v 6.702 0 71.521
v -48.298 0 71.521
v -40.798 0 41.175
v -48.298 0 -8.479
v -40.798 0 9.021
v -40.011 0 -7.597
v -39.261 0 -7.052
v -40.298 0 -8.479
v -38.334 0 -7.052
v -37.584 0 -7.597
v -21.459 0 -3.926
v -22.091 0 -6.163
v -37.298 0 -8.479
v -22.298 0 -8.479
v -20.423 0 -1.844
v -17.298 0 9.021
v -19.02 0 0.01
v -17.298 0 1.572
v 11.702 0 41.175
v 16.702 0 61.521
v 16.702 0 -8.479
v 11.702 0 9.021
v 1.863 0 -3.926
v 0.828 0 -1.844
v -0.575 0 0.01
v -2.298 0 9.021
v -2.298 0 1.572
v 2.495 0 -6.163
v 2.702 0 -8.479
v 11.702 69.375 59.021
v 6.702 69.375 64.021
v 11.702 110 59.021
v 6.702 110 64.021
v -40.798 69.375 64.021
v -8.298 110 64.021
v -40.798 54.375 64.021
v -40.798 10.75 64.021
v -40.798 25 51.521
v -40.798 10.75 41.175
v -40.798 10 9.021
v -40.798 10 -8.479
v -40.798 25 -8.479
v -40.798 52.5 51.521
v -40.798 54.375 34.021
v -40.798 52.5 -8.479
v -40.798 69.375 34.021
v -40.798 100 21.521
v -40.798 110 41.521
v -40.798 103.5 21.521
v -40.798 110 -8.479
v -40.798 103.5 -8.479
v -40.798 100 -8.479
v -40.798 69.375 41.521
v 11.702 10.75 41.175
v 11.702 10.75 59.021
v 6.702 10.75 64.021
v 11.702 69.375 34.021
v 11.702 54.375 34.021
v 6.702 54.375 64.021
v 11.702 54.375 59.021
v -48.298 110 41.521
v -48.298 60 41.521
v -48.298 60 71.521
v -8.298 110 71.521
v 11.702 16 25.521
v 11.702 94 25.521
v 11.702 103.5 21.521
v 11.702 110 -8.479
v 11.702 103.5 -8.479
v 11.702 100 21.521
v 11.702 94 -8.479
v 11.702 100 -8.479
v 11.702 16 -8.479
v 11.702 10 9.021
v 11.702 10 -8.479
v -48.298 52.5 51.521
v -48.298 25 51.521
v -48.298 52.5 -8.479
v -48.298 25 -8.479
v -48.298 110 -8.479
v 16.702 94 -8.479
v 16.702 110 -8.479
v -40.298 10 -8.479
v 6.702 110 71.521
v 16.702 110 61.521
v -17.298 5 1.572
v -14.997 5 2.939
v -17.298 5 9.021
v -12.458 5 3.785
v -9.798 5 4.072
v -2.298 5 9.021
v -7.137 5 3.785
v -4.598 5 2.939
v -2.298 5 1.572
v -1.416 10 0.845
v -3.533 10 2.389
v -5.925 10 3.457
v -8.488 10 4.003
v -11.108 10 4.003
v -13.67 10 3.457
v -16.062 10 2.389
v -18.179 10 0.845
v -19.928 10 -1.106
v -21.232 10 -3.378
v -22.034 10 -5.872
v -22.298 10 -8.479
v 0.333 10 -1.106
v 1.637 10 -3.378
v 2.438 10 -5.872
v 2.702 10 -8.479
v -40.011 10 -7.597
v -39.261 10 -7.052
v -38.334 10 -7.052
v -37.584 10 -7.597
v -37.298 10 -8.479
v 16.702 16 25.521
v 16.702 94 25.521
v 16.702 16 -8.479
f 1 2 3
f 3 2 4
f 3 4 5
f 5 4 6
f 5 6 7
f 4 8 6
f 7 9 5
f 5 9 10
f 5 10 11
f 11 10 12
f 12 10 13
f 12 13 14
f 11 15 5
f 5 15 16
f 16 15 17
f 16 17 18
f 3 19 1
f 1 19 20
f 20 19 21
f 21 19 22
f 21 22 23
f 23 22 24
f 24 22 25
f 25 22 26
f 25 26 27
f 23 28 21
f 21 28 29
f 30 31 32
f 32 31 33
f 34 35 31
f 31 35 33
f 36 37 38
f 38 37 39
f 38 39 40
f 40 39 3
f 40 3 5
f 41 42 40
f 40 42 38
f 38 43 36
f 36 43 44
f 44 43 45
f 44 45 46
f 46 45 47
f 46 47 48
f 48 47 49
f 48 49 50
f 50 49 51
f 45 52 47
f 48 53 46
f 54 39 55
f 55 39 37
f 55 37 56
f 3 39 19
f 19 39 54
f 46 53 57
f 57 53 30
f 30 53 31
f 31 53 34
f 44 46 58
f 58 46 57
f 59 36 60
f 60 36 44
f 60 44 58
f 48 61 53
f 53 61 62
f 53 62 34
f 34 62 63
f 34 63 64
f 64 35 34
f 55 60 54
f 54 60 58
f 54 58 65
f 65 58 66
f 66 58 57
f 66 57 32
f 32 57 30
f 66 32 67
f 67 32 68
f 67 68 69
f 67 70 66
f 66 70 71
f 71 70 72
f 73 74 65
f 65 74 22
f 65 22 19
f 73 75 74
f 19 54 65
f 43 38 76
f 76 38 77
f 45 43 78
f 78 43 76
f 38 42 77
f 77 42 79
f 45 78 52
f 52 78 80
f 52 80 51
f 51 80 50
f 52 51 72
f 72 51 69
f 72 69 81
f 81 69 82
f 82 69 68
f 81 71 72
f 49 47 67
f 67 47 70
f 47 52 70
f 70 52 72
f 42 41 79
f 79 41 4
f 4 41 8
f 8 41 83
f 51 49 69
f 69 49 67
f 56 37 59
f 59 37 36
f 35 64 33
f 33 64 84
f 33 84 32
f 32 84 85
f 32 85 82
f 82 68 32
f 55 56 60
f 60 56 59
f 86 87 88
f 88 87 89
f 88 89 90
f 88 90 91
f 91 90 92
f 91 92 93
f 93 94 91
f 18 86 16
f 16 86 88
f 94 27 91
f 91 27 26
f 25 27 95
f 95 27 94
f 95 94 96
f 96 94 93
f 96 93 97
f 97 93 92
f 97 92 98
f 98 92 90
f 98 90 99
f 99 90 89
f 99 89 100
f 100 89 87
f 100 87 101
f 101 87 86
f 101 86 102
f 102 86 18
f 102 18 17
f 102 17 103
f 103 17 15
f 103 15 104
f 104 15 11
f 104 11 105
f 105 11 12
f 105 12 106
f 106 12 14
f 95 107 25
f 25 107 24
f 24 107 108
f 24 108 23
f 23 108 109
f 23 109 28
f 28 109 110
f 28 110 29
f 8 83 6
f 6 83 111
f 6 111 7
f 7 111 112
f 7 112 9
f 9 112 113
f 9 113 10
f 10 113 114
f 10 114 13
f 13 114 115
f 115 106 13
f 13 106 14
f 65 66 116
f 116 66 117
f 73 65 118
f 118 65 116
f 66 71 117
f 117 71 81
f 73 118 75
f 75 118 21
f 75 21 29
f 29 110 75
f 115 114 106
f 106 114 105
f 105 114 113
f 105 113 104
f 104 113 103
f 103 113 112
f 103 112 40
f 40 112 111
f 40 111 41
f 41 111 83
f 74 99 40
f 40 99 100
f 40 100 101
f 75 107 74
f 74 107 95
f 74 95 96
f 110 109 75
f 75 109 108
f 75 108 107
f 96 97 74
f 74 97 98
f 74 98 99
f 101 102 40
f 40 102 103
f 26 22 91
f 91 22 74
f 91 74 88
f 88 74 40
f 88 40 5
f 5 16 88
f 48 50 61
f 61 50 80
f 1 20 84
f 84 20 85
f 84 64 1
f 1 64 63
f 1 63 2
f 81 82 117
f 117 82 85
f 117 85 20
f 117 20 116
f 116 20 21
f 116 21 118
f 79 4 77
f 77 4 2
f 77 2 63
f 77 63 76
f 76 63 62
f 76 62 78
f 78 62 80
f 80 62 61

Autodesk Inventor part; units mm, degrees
ref_plane "YZ Plane" through (0, 0, 0) normal (1, 0, 0) x (0, 1, 0)
ref_plane "XZ Plane" through (0, 0, 0) normal (0, 1, 0) x (-1, 0, 0)
ref_plane "XY Plane" through (0, 0, 0) normal (0, 0, 1) x (1, 0, 0)
sketch "Sketch1" plane through (0, 0, 0) normal (0, 1, 0) x (-1, 0, 0)
  line L0 (48.2977, 71.5211) -> (-16.7023, 71.5211)
  line L1 (-16.7023, 71.5211) -> (-16.7023, -8.4789)
  line L2 (-16.7023, -8.4789) -> (48.2977, -8.4789)
  line L3 (48.2977, -8.4789) -> (48.2977, 71.5211)
  arc A0 (22.2975, -8.4789) -> (-2.7023, -8.4789) centre (9.7976, -8.4281) ccw
  line L4 (-16.7023, -8.4789) -> (-11.7023, -8.4789)
  line L5 (-11.7023, -8.4789) -> (-11.7023, 71.5211)
  line L6 (-11.7023, 71.5211) -> (-16.7023, 71.5211)
  line L7 (-16.7023, 71.5211) -> (-16.7023, -8.4789)
  line L8 (48.2977, -8.4789) -> (40.7977, -8.4789)
  line L9 (40.7977, -8.4789) -> (40.7977, 71.5211)
  line L10 (40.7977, 71.5211) -> (48.2977, 71.5211)
  line L11 (48.2977, 71.5211) -> (48.2977, -8.4789)
  line L12 (-11.7023, -8.4789) -> (40.7977, -8.4789)
  line L13 (40.7977, -8.4789) -> (40.7977, 9.0211)
  line L14 (40.7977, 9.0211) -> (-11.7023, 9.0211)
  line L15 (-11.7023, 9.0211) -> (-11.7023, -8.4789)
  line L16 (-11.7023, 71.5211) -> (40.7977, 71.5211)
  line L17 (40.7977, 71.5211) -> (40.7977, 64.0211)
  line L18 (40.7977, 64.0211) -> (-11.7023, 64.0211)
  line L19 (-11.7023, 64.0211) -> (-11.7023, 71.5211)
  line L20 (-16.7023, 61.5211) -> (-6.7023, 71.5211)
  line L21 (-16.7023, 61.5211) -> (-16.7023, 71.5211)
  line L22 (-6.7023, 71.5211) -> (-11.7023, 66.5211)
  line L23 (-11.7023, 64.0211) -> (-11.7023, 66.5211)
  line L24 (-6.7023, 71.5211) -> (40.7977, 71.5211)
  line L25 (40.7977, 64.0211) -> (-11.7023, 64.0211)
  line L26 (-11.7023, 66.5211) -> (-11.7023, 64.0211)
  line L27 (-11.7023, 66.5211) -> (-6.7023, 71.5211)
  line L28 (-11.7023, 54.0211) -> (-1.7023, 64.0211)
  point P0 (0, 0)
  dimension "d0" = 80
  dimension "d1" = 65
  dimension "d3" = 14
  dimension "d4" = 12.5
  dimension "d5" = 7.5
  dimension "d6" = 5
  dimension "d7" = 17.5
  dimension "d8" = 7.5
  dimension "d9" = 10
  dimension "d10" = 10
  dimension "d48" = 10
  dimension "d49" = 10
extrude "Extrusion1" add sketch "Sketch1" along normal blind 110 contours L3 L2 L9 L0 | L9 L18 L5 L20 L0 | L2 A0 L5 L14 L9 | L5 L2 L1 L20
sketch "Sketch2" plane through (-22.2975, 0, -8.4789) normal (0, 0, -1) x (-1, 0, 0)
  line L0 (18.5002, 0) -> (18.5002, 110) projected
  line L1 (18.5002, 110) -> (-33.9998, 110)
  line L2 (-33.9998, 110) -> (-33.9998, 10)
  line L3 (-33.9998, 10) -> (18.5002, 10)
  line L4 (18.5002, 10) -> (18.5002, 110)
  point P0 (-22.2975, 0)
  dimension "d13" = 100
  dimension "d14" = 52.5
extrude "Extrusion2" cut sketch "Sketch2" against normal blind 30
sketch "Sketch3" plane through (-40.7977, 0, 9.0211) normal (0, 0, 1) x (1, 0, 0)
  line L0 (52.5, 10) -> (0, 10) projected
  line L1 (26.0002, 10) -> (36, 10)
  line L2 (18.5002, 10) -> (18.5002, 0) projected
  line L3 (43.5, 0) -> (43.5, 10) projected
  line L4 (0, 0) -> (52.5, 0) projected
  line L5 (38.5, 0) -> (23.5002, 0)
  line L6 (23.5002, 0) -> (23.5002, 5)
  line L7 (23.5002, 5) -> (38.5, 5)
  line L8 (38.5, 5) -> (38.5, 0)
  point P0 (40.7977, 0)
  dimension "d43" = 5
  dimension "d44" = 5
  dimension "d45" = 5
sketch "Sketch4" plane through (16.7023, 0, 61.5211) normal (1, 0, 0) x (0, 0, -1)
  line L0 (70, 110) -> (70, 10) projected
  line L1 (70, 94) -> (36, 94)
  line L2 (36, 94) -> (36, 16)
  line L3 (36, 16) -> (70, 16)
  line L4 (70, 16) -> (70, 94)
  line L5 (0, 0) -> (70, 0) projected
  line L6 (0, 110) -> (70, 110) projected
  point P0 (61.5211, 0)
  dimension "d22" = 34
  dimension "d23" = 16
  dimension "d24" = 16
  dimension "d25" = 78
extrude "Extrusion4" cut sketch "Sketch4" against normal blind 30
sketch "Sketch5" plane through (0, 0, 0) normal (0, -1, 0) x (1, 0, 0)
  line L0 (-40.7977, -8.4789) -> (-22.2975, -8.4789) projected
  arc A0 (-40.2975, -8.4789) -> (-37.2975, -8.4789) centre (-38.7975, -8.4789) ccw
  arc A1 (-37.2975, -8.4789) -> (-40.2975, -8.4789) centre (-38.7975, -8.4789) ccw
  point P0 (0, 0)
  dimension "d28" = 18
  dimension "d29" = 1.5
  dimension "d30" = 0
  dimension "d31" = 1.5
extrude "Extrusion5" cut sketch "Sketch5" against normal blind 30 contours A1 L0
sketch "Sketch7" plane through (-48.2977, 0, 71.5211) normal (0, 0, 1) x (1, 0, 0)
  line L0 (0, 110) -> (55, 110) projected
  line L1 (0, 110) -> (40, 110)
  line L2 (40, 110) -> (0, 60)
  line L3 (0, 60) -> (0, 110)
  line L4 (65, 110) -> (65, 0) projected
  point P0 (48.2977, 0)
  dimension "d39" = 40
  dimension "d40" = 25
  dimension "d41" = 50
extrude "Extrusion6" cut sketch "Sketch3" against normal blind 30 contours L4 L6 L7 L8
sketch "Sketch8" plane through (0, 110, 0) normal (0, 1, 0) x (1, 0, 0)
  line L0 (11.7023, 8.4789) -> (11.7023, -64.0211) projected
  line L1 (11.7023, -59.0211) -> (6.7023, -64.0211)
  line L2 (6.7023, -64.0211) -> (11.7023, -64.0211)
  line L3 (11.7023, -64.0211) -> (11.7023, -59.0211)
  point P0 (0, 0)
  dimension "d50" = 5
  dimension "d51" = 5
extrude "Extrusion7" add sketch "Sketch8" against normal up to surface (110 mm away)
extrude "Extrusion8" cut sketch "Sketch7" against normal blind 30
sketch "Sketch9" plane through (11.7023, 0, 9.0211) normal (-1, 0, 0) x (0, 0, 1)
  line L0 (32.5, 69.375) -> (55, 69.375) projected
  line L1 (50, 0) -> (50, 110) projected
  line L2 (50, 69.375) -> (25, 69.375)
  line L3 (25, 69.375) -> (25, 54.375)
  line L4 (25, 54.375) -> (50, 54.375)
  line L5 (50, 54.375) -> (50, 69.375)
  point P0 (-9.0211, 0)
  dimension "d56" = 15
  dimension "d57" = 25
sketch "Sketch11" plane through (11.7023, 0, 9.0211) normal (-1, 0, 0) x (0, 0, 1)
  line L0 (-17.5, 94) -> (-17.5, 110) projected
  line L1 (-17.5, 100) -> (12.5, 100)
  line L2 (12.5, 100) -> (12.5, 103.5)
  line L3 (12.5, 103.5) -> (-17.5, 103.5)
  line L4 (-17.5, 103.5) -> (-17.5, 100)
  line L5 (-17.5, 110) -> (50, 110) projected
  point P0 (-9.0211, 0)
  dimension "d62" = 3.5
  dimension "d63" = 30
  dimension "d64" = 10
extrude "Extrusion11" add sketch "Sketch11" along normal up to next
sketch "Sketch12" plane through (-48.2977, 0, -8.4789) normal (-1, 0, 0) x (0, 0, 1)
  line L0 (0, 100) -> (0, 10) projected
  line L1 (0, 52.5) -> (60, 52.5)
  line L2 (60, 52.5) -> (60, 25)
  line L3 (60, 25) -> (0, 25)
  line L4 (0, 25) -> (0, 52.5)
  line L5 (80, 0) -> (80, 60) projected
  line L6 (80, 60) -> (50, 60) projected
  point P0 (8.4789, 0)
  dimension "d67" = 27.5
  dimension "d68" = 60
  dimension "d69" = 20
  dimension "d70" = 7.5
extrude "Extrusion12" cut sketch "Sketch12" against normal up to surface (60 mm away)
sketch "Sketch13" plane through (11.7023, 0, 9.0211) normal (-1, 0, 0) x (0, 0, 1)
  line L0 (0, 0) -> (50, 0) projected
  line L1 (50, 0) -> (32.154, 0)
  line L2 (32.154, 0) -> (32.154, 10.7503)
  line L3 (32.154, 10.7503) -> (50, 10.7503)
  line L4 (50, 10.7503) -> (50, 0)
  point P0 (-9.0211, 0)
sketch "Sketch14" plane through (6.7023, 0, 64.0211) normal (0, 0, -1) x (-1, 0, 0)
  point P0 (6.7023, 0)
extrude "Extrusion13" add sketch "Sketch9" along normal up to next
extrude "Extrusion14" add sketch "Sketch13" along normal up to next
sketch "Sketch15" plane through (-40.7977, 0, 59.0211) normal (0, 0, 1) x (1, 0, 0)
  line L0 (0, 0) -> (0, 10.7503) projected
  line L1 (52.5, 0) -> (0, 0) projected
  line L2 (52.5, 0) -> (52.5, 10.7503) projected
  line L3 (52.5, 10.7503) -> (0, 10.7503) projected
  line L4 (52.5, 0) -> (52.5, 10.7503) projected
  line L5 (52.5, 0) -> (0, 0) projected
  line L6 (0, 54.375) -> (0, 69.375) projected
  line L7 (52.5, 54.375) -> (0, 54.375) projected
  line L8 (52.5, 54.375) -> (52.5, 69.375) projected
  line L9 (52.5, 69.375) -> (0, 69.375) projected
  point P0 (40.7977, 0)
extrude "Extrusion15" add sketch "Sketch15" along normal blind 5.5
equation "\"d8\" = d5"
equation "\"d49\" = d48"
equation "\"d44\" = d43"
equation "\"d24\" = d23"
equation "\"d31\" = d29"
equation "\"d50\" = d51"
properties part number "Basev3.3"
